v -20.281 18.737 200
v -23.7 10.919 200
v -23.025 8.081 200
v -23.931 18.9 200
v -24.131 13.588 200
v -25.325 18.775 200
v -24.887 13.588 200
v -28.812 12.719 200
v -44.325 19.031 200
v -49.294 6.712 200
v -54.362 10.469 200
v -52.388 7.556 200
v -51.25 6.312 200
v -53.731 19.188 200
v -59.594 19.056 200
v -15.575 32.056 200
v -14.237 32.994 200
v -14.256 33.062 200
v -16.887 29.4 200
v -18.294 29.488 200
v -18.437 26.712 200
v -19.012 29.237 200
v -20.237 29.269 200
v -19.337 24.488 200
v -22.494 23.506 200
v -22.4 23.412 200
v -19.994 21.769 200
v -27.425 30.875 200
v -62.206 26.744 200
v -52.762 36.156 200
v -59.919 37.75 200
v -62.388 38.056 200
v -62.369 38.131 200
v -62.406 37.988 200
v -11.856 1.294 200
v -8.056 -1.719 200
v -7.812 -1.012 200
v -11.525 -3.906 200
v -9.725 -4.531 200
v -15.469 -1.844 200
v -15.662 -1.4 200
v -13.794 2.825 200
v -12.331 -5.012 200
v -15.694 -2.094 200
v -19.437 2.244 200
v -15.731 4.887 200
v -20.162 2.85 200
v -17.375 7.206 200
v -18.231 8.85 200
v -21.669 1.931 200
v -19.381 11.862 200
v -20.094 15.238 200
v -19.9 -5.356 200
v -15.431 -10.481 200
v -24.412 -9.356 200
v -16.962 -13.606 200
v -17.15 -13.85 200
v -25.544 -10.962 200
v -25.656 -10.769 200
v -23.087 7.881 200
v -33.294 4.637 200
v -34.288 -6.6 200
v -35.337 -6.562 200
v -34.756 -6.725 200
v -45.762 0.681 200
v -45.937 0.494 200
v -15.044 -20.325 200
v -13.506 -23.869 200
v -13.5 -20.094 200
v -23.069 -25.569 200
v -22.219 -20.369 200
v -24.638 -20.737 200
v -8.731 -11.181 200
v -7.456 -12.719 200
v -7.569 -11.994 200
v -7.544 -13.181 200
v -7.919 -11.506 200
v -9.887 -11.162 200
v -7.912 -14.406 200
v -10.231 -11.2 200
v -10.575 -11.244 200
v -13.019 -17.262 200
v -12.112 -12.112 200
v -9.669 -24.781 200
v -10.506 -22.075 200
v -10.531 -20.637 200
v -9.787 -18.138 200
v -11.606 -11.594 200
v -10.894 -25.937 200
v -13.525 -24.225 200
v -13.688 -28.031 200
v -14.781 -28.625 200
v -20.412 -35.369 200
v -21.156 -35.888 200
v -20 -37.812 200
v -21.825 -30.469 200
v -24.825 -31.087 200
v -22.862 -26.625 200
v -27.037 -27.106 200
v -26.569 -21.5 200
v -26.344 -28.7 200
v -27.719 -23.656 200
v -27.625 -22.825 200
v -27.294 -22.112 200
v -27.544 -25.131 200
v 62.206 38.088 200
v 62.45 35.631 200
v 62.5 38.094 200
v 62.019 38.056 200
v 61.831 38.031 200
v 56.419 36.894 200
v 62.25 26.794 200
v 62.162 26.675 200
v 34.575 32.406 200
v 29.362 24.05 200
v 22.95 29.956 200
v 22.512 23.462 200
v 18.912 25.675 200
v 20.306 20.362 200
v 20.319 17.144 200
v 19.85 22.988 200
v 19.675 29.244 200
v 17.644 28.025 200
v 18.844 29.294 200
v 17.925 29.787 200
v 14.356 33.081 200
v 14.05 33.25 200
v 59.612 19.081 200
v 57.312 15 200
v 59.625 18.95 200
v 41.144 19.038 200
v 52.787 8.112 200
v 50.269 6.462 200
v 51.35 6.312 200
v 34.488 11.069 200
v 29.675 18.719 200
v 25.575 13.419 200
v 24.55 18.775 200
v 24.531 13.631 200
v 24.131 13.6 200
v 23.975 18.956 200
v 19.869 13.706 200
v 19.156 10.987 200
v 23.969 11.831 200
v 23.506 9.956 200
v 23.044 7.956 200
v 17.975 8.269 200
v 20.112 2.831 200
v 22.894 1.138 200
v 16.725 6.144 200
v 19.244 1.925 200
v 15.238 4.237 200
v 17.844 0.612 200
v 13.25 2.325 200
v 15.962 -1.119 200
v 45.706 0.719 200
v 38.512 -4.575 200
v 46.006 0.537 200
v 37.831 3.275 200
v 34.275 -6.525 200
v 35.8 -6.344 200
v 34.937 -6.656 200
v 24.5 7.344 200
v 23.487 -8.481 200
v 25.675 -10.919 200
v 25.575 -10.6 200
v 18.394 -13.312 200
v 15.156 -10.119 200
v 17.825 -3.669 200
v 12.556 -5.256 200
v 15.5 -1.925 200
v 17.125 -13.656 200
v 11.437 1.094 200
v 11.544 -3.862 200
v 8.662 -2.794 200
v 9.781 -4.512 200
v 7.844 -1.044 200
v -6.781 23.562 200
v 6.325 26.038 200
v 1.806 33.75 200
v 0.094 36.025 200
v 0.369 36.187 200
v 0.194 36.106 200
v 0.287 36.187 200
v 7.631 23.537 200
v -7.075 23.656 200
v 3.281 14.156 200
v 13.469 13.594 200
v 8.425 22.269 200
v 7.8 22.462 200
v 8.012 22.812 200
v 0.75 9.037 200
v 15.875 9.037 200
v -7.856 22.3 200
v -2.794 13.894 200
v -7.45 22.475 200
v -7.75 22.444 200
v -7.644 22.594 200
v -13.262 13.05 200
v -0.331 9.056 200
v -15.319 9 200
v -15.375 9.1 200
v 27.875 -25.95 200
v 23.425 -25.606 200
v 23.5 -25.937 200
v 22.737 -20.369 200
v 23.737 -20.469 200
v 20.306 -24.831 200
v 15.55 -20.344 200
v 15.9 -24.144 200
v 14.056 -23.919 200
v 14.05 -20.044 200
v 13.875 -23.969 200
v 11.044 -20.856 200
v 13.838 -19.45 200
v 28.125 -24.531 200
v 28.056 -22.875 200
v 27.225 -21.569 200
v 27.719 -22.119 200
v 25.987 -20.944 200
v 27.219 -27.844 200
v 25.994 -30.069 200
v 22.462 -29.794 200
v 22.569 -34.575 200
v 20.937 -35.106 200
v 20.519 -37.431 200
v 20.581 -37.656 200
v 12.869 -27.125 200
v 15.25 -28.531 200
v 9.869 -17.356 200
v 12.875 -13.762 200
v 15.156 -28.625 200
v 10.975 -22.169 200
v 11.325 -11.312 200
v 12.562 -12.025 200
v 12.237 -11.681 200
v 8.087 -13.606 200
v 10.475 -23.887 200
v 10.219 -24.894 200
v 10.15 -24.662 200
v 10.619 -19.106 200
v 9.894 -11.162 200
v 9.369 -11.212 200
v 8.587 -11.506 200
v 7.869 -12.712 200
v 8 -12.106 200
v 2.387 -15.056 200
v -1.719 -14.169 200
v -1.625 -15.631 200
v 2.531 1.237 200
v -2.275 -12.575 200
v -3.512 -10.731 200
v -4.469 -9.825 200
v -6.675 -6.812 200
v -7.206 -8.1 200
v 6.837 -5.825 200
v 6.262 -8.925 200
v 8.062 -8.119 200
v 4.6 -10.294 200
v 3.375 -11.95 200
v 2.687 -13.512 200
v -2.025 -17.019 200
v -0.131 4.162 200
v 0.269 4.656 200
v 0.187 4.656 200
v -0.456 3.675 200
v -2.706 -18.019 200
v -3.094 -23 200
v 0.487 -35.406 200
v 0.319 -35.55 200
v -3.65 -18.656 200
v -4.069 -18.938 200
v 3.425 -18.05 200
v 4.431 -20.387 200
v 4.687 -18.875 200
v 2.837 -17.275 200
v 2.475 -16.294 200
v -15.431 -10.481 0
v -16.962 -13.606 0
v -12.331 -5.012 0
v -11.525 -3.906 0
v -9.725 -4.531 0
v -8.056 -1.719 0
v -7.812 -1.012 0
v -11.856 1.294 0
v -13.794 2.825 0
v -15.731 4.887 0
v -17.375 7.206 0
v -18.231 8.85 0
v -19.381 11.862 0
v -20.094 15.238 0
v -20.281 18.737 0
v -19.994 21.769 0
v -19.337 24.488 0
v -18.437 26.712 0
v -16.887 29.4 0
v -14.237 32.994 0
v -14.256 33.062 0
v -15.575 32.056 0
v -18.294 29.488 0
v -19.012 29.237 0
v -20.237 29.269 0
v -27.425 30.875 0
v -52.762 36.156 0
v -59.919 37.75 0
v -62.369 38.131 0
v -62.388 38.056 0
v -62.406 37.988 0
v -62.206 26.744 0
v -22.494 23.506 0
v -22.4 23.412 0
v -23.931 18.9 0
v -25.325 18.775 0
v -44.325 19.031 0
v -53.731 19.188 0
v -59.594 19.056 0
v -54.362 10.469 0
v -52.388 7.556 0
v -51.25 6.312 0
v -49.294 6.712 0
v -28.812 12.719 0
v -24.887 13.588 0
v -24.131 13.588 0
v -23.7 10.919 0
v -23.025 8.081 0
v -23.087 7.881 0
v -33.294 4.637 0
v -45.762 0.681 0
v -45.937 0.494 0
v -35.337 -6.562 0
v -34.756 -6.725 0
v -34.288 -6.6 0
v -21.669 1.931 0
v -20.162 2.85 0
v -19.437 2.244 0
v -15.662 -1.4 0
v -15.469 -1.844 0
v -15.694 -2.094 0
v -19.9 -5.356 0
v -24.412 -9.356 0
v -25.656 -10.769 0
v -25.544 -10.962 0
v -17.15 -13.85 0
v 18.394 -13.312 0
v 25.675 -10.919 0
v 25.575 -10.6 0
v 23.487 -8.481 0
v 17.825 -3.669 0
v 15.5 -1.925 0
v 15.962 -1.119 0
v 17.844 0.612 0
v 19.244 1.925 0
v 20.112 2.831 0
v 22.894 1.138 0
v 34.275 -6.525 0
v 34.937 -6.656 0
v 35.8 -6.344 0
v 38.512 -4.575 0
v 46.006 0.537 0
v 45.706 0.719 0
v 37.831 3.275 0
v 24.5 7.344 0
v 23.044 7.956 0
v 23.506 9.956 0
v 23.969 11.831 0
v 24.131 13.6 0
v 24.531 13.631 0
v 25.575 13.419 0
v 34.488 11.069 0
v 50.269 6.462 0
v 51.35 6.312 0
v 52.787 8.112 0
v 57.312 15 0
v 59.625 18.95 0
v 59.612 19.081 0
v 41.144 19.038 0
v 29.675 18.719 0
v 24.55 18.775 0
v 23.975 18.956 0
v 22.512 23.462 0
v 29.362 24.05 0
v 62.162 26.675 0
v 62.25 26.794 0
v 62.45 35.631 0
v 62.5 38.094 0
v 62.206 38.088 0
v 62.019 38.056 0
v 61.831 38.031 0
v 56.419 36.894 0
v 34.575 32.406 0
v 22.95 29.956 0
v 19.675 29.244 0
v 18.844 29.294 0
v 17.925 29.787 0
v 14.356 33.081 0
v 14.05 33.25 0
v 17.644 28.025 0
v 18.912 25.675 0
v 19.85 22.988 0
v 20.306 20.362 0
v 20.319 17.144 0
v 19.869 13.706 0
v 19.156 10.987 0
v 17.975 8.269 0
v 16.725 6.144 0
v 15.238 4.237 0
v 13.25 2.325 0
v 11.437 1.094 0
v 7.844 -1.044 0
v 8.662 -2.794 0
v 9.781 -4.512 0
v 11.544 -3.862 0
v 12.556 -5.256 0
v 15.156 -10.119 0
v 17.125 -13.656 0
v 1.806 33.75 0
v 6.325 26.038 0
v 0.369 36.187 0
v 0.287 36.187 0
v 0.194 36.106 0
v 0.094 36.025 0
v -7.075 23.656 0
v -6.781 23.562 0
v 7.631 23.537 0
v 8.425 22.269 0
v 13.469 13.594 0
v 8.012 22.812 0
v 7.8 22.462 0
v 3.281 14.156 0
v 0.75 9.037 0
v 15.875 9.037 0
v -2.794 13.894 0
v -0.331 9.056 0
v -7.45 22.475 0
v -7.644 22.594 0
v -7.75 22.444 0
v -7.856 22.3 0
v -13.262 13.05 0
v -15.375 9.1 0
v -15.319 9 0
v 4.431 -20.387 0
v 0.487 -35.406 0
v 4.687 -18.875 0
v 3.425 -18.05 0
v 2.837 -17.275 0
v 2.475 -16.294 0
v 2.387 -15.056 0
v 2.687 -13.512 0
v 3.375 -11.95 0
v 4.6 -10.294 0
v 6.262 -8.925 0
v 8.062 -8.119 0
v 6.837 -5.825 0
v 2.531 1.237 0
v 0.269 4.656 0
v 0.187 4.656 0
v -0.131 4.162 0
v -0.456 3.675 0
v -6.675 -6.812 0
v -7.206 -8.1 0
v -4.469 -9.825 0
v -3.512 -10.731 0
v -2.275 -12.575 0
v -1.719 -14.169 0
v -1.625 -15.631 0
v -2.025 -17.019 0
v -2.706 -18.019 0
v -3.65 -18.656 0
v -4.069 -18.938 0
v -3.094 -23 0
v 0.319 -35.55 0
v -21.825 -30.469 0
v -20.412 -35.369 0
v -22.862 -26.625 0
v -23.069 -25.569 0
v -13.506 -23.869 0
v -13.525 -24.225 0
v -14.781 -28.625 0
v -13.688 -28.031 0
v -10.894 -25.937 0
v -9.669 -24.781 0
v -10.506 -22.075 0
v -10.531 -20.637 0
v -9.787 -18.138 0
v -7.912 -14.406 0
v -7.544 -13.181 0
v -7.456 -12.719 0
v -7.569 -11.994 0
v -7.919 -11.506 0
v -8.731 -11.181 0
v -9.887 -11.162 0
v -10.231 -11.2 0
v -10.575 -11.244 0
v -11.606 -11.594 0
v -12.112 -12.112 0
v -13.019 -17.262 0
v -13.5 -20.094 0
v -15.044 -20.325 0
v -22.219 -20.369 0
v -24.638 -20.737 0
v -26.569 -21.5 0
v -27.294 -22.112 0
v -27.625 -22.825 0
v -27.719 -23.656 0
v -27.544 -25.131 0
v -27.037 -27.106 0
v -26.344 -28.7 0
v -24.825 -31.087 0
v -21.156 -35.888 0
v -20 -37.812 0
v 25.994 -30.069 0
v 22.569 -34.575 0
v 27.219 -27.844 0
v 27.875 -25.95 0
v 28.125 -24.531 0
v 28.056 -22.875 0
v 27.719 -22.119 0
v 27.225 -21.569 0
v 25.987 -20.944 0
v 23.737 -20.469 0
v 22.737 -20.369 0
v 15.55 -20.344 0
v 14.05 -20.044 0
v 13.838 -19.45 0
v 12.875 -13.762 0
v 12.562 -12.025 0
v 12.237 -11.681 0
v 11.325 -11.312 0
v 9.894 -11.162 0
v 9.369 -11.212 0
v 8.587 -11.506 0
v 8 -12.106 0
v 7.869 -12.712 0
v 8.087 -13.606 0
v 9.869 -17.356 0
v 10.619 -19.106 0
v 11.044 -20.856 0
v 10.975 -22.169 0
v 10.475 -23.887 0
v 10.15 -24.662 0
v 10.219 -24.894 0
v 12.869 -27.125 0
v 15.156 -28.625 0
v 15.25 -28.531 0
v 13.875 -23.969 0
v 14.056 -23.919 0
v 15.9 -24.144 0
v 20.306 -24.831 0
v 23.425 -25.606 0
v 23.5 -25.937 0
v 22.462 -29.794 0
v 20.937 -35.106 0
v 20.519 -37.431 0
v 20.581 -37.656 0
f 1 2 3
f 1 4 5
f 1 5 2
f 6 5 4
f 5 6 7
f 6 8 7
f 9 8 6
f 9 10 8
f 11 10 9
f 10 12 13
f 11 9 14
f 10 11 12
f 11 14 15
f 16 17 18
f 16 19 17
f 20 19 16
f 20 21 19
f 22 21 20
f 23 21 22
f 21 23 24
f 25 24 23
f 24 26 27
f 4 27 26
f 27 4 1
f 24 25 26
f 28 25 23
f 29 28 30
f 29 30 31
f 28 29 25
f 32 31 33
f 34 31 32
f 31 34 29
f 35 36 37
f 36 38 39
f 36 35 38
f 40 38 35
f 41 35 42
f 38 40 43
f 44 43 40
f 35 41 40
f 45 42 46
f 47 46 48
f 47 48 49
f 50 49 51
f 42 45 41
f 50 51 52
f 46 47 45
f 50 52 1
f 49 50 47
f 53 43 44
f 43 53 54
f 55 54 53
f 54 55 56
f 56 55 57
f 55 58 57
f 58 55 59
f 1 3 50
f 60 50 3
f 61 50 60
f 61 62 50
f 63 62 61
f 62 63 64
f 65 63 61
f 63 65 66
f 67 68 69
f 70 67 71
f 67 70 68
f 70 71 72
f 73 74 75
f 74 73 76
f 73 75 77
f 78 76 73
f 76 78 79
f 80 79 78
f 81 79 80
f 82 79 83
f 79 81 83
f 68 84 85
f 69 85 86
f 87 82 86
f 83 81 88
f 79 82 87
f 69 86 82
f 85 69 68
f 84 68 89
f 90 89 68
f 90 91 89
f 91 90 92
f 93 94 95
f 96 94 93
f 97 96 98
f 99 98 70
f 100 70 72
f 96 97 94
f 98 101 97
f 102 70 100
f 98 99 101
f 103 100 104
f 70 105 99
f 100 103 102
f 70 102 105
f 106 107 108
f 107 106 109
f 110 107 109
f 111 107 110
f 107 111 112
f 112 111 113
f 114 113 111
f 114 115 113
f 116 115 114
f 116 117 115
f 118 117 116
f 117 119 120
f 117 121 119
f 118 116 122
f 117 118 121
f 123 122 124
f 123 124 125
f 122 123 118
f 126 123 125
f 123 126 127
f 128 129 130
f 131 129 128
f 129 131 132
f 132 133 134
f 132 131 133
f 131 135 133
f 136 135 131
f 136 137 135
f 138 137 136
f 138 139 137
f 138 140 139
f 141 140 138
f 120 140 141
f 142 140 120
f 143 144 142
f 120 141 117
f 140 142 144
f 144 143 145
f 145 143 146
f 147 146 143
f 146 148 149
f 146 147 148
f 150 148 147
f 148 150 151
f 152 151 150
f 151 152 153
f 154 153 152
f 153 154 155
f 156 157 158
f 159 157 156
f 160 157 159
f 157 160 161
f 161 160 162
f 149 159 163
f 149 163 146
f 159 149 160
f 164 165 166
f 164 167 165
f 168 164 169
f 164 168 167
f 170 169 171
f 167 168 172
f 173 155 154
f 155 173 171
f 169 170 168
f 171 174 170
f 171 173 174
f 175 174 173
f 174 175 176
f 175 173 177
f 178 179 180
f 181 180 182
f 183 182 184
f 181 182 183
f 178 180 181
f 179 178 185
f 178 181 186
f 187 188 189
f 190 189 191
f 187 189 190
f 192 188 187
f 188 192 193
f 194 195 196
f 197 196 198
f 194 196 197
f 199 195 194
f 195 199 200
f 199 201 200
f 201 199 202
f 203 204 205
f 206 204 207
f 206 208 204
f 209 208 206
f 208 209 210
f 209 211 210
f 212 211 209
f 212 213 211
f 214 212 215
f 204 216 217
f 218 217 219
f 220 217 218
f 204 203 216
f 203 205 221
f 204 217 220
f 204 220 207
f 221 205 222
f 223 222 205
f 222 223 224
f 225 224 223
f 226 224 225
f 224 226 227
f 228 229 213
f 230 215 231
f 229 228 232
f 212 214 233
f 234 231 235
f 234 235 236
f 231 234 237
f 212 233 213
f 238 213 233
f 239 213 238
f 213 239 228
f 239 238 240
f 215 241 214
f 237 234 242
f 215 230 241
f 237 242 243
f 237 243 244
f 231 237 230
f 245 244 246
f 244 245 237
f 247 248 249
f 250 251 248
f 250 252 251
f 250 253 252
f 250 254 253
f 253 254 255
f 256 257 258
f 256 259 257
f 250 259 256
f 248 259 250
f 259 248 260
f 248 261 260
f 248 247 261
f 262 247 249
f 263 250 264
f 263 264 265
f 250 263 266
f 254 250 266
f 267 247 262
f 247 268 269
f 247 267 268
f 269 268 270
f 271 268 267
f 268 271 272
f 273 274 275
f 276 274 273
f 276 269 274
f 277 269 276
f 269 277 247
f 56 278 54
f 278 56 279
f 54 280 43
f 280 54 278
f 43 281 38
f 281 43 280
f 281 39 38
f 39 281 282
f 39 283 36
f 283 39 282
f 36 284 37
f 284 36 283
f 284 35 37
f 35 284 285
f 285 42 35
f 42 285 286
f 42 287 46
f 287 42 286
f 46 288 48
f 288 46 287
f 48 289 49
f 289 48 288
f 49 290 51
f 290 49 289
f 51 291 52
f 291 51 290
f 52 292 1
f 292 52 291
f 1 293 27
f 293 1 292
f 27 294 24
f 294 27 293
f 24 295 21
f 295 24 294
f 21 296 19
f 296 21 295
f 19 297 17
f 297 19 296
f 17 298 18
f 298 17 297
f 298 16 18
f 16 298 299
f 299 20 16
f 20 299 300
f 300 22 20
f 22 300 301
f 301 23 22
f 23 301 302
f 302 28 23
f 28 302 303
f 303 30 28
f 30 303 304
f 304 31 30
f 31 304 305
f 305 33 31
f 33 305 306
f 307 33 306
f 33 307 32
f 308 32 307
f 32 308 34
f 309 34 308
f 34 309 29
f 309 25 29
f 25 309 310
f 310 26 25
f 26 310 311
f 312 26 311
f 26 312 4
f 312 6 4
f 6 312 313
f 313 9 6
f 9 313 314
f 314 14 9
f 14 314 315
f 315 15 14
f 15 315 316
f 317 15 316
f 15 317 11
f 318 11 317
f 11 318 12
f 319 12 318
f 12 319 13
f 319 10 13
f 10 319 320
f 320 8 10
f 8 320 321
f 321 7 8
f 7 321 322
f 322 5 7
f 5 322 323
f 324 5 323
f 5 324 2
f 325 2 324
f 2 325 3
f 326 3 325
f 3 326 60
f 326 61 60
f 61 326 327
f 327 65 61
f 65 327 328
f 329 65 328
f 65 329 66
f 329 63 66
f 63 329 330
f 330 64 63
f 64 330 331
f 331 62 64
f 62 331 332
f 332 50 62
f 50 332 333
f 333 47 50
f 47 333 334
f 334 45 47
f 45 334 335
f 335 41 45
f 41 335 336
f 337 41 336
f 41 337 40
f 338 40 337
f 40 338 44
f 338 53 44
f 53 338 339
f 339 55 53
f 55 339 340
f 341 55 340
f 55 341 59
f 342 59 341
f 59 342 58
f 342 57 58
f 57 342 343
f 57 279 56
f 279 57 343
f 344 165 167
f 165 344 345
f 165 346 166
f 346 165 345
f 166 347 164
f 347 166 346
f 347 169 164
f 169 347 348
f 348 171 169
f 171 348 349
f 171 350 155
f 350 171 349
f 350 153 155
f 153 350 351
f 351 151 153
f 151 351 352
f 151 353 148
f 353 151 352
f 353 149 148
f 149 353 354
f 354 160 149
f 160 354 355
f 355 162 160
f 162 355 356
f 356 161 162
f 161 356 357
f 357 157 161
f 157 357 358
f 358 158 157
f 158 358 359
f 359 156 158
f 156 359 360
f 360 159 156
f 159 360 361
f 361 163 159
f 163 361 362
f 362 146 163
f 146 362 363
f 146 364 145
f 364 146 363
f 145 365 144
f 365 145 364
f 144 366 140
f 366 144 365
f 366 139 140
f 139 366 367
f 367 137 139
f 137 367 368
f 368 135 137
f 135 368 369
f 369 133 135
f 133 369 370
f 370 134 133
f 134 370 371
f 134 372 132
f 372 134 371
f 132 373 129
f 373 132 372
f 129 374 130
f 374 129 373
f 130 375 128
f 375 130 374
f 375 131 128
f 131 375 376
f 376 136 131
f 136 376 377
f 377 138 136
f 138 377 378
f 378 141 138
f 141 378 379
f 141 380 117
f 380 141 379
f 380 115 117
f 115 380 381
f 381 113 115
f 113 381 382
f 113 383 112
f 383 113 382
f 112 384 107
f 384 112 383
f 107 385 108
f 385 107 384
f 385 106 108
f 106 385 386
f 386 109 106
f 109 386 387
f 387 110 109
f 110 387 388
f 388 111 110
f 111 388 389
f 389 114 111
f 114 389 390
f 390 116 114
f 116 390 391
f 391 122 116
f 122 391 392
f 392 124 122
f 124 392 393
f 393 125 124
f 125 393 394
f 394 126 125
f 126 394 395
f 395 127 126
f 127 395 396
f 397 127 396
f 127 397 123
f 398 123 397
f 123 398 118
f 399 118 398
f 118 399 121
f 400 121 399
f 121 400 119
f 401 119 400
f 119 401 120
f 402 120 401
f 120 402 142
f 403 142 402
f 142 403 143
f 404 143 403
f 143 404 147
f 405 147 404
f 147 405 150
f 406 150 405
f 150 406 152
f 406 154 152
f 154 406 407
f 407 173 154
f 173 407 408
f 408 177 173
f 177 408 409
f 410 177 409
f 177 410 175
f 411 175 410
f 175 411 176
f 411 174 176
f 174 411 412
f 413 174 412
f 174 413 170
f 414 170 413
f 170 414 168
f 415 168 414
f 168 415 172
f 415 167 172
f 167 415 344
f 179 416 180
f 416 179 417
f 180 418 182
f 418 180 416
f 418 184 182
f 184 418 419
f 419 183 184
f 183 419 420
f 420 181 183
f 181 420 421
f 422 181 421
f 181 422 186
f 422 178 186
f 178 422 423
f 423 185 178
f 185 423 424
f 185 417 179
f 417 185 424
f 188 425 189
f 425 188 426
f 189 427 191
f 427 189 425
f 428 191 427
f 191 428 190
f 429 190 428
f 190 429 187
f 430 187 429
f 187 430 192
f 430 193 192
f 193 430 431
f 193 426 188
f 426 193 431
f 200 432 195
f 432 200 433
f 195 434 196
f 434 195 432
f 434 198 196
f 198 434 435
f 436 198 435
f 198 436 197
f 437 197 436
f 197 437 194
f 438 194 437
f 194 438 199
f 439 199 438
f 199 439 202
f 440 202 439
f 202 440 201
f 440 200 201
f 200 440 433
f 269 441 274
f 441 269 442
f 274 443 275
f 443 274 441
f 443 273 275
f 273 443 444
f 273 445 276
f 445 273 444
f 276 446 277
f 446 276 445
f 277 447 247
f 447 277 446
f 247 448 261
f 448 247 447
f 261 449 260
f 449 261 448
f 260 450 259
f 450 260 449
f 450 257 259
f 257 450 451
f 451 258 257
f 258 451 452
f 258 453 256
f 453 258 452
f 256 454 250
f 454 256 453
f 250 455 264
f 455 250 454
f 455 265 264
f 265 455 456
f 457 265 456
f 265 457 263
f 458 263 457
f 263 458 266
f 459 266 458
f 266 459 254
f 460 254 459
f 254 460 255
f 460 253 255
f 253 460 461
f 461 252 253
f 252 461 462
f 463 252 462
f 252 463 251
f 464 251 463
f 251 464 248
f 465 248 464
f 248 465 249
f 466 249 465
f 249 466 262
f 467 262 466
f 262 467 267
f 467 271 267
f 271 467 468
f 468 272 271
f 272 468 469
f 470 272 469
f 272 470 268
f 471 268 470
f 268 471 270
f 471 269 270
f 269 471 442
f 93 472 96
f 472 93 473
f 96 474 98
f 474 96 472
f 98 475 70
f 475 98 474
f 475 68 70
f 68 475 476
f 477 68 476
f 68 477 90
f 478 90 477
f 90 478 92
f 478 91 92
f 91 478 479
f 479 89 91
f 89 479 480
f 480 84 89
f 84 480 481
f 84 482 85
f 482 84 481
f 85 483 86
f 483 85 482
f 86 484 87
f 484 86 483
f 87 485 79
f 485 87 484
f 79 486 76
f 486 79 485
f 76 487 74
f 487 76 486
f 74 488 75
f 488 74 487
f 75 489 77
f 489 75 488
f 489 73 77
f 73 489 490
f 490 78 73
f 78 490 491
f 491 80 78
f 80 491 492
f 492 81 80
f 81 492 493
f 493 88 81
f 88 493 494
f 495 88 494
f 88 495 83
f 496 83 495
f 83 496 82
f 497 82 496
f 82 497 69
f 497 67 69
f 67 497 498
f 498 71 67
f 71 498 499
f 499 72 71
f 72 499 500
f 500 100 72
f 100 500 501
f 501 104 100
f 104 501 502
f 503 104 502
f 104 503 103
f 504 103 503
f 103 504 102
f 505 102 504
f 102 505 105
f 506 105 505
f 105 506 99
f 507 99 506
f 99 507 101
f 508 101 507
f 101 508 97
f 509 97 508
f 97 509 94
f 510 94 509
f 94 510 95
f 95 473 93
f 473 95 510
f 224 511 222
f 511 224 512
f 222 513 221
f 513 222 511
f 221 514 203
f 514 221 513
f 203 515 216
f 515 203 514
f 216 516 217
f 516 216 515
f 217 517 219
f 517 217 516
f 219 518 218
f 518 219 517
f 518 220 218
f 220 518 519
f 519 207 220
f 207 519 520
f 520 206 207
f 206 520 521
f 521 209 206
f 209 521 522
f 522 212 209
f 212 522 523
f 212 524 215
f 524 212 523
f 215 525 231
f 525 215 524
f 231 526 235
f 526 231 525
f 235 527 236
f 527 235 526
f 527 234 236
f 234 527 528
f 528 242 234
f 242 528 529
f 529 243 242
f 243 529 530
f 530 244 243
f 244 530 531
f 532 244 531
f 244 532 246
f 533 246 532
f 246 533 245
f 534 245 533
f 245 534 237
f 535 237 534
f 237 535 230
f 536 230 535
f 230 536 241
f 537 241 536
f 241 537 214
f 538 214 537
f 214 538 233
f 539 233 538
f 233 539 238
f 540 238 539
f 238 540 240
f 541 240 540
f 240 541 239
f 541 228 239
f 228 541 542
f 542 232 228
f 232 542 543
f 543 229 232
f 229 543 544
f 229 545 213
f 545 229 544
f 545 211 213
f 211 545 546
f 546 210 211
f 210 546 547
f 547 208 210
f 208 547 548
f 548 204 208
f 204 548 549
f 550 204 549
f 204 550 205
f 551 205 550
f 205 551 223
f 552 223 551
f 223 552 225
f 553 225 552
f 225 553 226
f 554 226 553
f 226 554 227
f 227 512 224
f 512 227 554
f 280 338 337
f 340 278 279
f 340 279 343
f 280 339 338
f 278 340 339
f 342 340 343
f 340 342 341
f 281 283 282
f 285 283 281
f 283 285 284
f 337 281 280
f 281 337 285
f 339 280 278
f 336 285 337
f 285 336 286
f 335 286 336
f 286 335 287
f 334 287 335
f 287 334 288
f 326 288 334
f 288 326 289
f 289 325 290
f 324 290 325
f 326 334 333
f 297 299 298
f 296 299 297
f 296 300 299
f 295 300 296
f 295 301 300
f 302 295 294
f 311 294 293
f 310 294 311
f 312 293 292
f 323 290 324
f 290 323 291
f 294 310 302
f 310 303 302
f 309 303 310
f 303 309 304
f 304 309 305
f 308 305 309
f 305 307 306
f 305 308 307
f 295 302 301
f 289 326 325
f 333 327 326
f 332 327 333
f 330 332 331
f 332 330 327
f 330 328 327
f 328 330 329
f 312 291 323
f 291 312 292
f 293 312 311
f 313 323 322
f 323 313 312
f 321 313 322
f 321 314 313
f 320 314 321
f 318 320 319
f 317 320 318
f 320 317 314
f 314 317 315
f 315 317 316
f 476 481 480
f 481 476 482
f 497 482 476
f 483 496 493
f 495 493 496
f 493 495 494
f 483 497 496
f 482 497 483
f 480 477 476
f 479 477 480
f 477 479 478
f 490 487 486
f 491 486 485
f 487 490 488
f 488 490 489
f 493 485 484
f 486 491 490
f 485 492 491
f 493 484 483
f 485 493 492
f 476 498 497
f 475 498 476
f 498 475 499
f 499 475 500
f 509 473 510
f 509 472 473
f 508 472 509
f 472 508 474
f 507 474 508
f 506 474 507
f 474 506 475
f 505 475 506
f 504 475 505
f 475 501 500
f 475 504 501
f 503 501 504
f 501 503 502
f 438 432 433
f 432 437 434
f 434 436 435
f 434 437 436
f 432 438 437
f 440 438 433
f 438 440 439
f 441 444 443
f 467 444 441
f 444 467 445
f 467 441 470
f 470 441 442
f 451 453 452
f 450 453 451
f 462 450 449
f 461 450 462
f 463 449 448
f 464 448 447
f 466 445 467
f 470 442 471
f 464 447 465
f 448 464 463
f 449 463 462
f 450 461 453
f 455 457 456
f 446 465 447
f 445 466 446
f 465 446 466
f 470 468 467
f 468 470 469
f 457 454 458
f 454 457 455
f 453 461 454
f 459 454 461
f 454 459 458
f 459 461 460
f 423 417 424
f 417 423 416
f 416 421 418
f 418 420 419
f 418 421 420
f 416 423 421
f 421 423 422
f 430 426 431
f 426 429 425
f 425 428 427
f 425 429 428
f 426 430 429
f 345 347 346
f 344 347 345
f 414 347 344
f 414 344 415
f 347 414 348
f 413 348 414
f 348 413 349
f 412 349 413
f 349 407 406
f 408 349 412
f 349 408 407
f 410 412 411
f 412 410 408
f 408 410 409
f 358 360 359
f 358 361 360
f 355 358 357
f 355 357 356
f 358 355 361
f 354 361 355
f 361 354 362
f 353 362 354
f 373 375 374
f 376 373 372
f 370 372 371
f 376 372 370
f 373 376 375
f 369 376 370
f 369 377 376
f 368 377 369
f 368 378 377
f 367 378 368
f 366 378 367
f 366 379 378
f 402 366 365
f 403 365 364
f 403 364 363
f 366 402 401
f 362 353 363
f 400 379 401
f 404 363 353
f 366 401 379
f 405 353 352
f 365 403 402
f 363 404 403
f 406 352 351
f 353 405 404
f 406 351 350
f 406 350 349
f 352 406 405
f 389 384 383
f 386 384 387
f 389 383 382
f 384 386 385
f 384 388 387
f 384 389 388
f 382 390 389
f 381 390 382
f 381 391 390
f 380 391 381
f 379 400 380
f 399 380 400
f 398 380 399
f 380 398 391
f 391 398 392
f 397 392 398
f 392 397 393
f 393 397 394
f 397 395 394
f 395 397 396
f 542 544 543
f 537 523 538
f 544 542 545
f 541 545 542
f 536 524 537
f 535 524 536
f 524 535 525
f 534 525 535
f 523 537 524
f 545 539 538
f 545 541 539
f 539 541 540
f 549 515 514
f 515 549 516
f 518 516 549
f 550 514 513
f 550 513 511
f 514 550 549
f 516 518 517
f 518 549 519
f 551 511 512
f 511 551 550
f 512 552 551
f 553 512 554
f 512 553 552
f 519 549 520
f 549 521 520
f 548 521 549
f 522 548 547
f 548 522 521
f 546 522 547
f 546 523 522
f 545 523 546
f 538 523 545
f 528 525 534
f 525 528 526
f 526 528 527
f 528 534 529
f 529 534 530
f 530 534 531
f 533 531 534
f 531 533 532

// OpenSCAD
module 7126ec08f752c4193c9ee798e1f18d5d_1()
{
 /* Generated by trace2scad version 20150415
    http://aggregate.org/MAKE/TRACE2SCAD/
    Optimized model has 279/3844 original points
 */
 color([0.48, 0.48, 0.48])
 assign(minx=0) /* polygon minx=15 */
 assign(miny=0) /* polygon miny=75 */
 assign(maxx=20000) /* polygon maxx=20000 */
 assign(maxy=12250) /* polygon maxy=12226 */
 assign(dx=maxx-minx)
 assign(dy=maxy-miny)
 assign(maxd=((dx>dy)?dx:dy))
 scale([1/maxd, 1/maxd, 1])
 translate([-minx-dx/2, -miny-dy/2, 0])
 linear_extrude(height=1, convexity=279)
 union() {
  union() {
   polygon([[18,12214],[15,12203],[47,10404],[6401,9886],[6416,9871],[6171,9149],[5948,9129],[2908,9170],[1403,9195],[465,9174],[1302,7800],[1618,7334],[1800,7135],[2113,7199],[5390,8160],[6018,8299],[6139,8299],[6208,7872],[6316,7418],[6306,7386],[4673,6867],[2678,6234],[2650,6204],[4346,5075],[4439,5049],[4514,5069],[6533,6434],[6774,6581],[6890,6484],[7494,5901],[7525,5830],[7489,5790],[6816,5268],[6094,4628],[5895,4402],[5913,4371],[7256,3909],[7286,3948],[7531,4448],[8027,5323],[8156,5500],[8444,5400],[8711,5850],[8750,5963],[8103,6332],[7793,6577],[7483,6907],[7220,7278],[7083,7541],[6899,8023],[6785,8563],[6755,9123],[6801,9608],[6906,10043],[7050,10399],[7298,10829],[7722,11404],[7719,11415],[7508,11254],[7073,10843],[6958,10803],[6762,10808],[5612,11065],[1558,11910],[413,12165],[21,12226]], convexity=24);
   polygon([[19923,12214],[19893,12210],[19027,12028],[15532,11310],[13672,10918],[13148,10804],[13015,10812],[12868,10891],[12297,11418],[12248,11445],[12823,10609],[13026,10233],[13176,9803],[13249,9383],[13251,8868],[13179,8318],[13065,7883],[12876,7448],[12676,7108],[12438,6803],[12120,6497],[11830,6300],[11255,5958],[11386,5678],[11565,5403],[11847,5507],[12009,5284],[12425,4506],[12740,3940],[12943,3995],[14108,4378],[14092,4429],[13758,4768],[12852,5538],[12480,5817],[12554,5946],[12855,6223],[13079,6433],[13218,6578],[13663,6307],[15484,5081],[15590,5060],[15728,5110],[16162,5393],[17361,6211],[17313,6240],[16053,6649],[13920,7300],[13687,7398],[13761,7718],[13835,8018],[13861,8301],[13925,8306],[14092,8272],[15518,7896],[18043,7159],[18216,7135],[18446,7423],[19170,8525],[19540,9157],[19538,9178],[16583,9171],[14748,9120],[13928,9129],[13836,9158],[13602,9879],[14698,9973],[19946,10393],[19960,10412],[19992,11826],[20000,12220],[19953,12219]], convexity=23);
   polygon([[10031,11902],[10015,11889],[8868,9910],[8915,9895],[11221,9891],[11012,10291],[10289,11525],[10059,11915],[10046,11915]], convexity=5);
   polygon([[11265,9747],[11248,9719],[10525,8390],[10120,7571],[12540,7571],[12155,8300],[11348,9688],[11282,9775]], convexity=5);
   polygon([[8760,9716],[8743,9693],[7878,8213],[7540,7581],[7549,7565],[9947,7574],[9553,8348],[8808,9721],[8777,9740]], convexity=6);
   polygon([[9979,6791],[9927,6713],[8932,5035],[8847,4829],[9285,4553],[9438,4408],[9636,4113],[9725,3858],[9740,3624],[9676,3402],[9567,3242],[9416,3140],[9349,3095],[9505,2445],[10051,437],[10078,460],[10709,2863],[10750,3105],[10548,3237],[10454,3361],[10396,3518],[10382,3716],[10430,3963],[10540,4213],[10736,4478],[11002,4697],[11290,4826],[11094,5193],[10405,6323],[10043,6870],[10030,6870]], convexity=10);
   polygon([[8363,4333],[8308,4326],[8143,4270],[8062,4187],[7917,3363],[7840,2910],[7593,2873],[6445,2866],[6058,2807],[5749,2685],[5633,2587],[5580,2473],[5565,2340],[5593,2104],[5674,1788],[5785,1533],[6028,1151],[6615,383],[6800,75],[6734,466],[6508,1250],[6342,1865],[6309,2034],[7839,2306],[7836,2249],[7635,1545],[7810,1640],[8257,1975],[8453,2160],[8319,2593],[8315,2823],[8434,3223],[8734,3820],[8793,4016],[8807,4090],[8789,4206],[8733,4284],[8603,4336],[8418,4339]], convexity=11);
   polygon([[11541,4335],[11499,4331],[11374,4284],[11280,4188],[11259,4091],[11294,3948],[11579,3348],[11699,3068],[11767,2788],[11756,2578],[11676,2303],[11624,2179],[11635,2142],[12059,1785],[12425,1545],[12440,1560],[12220,2290],[12249,2298],[12544,2262],[13249,2152],[13748,2028],[13760,1975],[13594,1358],[13350,508],[13283,136],[13293,100],[13611,593],[14159,1314],[14355,1670],[14460,1973],[14500,2200],[14489,2465],[14435,2586],[14356,2674],[14158,2774],[13798,2850],[13638,2866],[12488,2870],[12248,2918],[12214,3013],[12060,3923],[12010,4201],[11958,4256],[11812,4315],[11583,4339]], convexity=14);
  }
 }
}

module 7126ec08f752c4193c9ee798e1f18d5d()
{
 /* all layers combined, scaled to within a 1mm cube */
 scale([1, 1, 1/1])
 difference() {
  union() {
   scale([1,1,2]) translate([0,0,-0.5]) 7126ec08f752c4193c9ee798e1f18d5d_1();
  }
  translate([0,0,-2]) cube([2,2,4],center=true);
 }
}

scale([125, 125, 200]) {
	7126ec08f752c4193c9ee798e1f18d5d();
}
